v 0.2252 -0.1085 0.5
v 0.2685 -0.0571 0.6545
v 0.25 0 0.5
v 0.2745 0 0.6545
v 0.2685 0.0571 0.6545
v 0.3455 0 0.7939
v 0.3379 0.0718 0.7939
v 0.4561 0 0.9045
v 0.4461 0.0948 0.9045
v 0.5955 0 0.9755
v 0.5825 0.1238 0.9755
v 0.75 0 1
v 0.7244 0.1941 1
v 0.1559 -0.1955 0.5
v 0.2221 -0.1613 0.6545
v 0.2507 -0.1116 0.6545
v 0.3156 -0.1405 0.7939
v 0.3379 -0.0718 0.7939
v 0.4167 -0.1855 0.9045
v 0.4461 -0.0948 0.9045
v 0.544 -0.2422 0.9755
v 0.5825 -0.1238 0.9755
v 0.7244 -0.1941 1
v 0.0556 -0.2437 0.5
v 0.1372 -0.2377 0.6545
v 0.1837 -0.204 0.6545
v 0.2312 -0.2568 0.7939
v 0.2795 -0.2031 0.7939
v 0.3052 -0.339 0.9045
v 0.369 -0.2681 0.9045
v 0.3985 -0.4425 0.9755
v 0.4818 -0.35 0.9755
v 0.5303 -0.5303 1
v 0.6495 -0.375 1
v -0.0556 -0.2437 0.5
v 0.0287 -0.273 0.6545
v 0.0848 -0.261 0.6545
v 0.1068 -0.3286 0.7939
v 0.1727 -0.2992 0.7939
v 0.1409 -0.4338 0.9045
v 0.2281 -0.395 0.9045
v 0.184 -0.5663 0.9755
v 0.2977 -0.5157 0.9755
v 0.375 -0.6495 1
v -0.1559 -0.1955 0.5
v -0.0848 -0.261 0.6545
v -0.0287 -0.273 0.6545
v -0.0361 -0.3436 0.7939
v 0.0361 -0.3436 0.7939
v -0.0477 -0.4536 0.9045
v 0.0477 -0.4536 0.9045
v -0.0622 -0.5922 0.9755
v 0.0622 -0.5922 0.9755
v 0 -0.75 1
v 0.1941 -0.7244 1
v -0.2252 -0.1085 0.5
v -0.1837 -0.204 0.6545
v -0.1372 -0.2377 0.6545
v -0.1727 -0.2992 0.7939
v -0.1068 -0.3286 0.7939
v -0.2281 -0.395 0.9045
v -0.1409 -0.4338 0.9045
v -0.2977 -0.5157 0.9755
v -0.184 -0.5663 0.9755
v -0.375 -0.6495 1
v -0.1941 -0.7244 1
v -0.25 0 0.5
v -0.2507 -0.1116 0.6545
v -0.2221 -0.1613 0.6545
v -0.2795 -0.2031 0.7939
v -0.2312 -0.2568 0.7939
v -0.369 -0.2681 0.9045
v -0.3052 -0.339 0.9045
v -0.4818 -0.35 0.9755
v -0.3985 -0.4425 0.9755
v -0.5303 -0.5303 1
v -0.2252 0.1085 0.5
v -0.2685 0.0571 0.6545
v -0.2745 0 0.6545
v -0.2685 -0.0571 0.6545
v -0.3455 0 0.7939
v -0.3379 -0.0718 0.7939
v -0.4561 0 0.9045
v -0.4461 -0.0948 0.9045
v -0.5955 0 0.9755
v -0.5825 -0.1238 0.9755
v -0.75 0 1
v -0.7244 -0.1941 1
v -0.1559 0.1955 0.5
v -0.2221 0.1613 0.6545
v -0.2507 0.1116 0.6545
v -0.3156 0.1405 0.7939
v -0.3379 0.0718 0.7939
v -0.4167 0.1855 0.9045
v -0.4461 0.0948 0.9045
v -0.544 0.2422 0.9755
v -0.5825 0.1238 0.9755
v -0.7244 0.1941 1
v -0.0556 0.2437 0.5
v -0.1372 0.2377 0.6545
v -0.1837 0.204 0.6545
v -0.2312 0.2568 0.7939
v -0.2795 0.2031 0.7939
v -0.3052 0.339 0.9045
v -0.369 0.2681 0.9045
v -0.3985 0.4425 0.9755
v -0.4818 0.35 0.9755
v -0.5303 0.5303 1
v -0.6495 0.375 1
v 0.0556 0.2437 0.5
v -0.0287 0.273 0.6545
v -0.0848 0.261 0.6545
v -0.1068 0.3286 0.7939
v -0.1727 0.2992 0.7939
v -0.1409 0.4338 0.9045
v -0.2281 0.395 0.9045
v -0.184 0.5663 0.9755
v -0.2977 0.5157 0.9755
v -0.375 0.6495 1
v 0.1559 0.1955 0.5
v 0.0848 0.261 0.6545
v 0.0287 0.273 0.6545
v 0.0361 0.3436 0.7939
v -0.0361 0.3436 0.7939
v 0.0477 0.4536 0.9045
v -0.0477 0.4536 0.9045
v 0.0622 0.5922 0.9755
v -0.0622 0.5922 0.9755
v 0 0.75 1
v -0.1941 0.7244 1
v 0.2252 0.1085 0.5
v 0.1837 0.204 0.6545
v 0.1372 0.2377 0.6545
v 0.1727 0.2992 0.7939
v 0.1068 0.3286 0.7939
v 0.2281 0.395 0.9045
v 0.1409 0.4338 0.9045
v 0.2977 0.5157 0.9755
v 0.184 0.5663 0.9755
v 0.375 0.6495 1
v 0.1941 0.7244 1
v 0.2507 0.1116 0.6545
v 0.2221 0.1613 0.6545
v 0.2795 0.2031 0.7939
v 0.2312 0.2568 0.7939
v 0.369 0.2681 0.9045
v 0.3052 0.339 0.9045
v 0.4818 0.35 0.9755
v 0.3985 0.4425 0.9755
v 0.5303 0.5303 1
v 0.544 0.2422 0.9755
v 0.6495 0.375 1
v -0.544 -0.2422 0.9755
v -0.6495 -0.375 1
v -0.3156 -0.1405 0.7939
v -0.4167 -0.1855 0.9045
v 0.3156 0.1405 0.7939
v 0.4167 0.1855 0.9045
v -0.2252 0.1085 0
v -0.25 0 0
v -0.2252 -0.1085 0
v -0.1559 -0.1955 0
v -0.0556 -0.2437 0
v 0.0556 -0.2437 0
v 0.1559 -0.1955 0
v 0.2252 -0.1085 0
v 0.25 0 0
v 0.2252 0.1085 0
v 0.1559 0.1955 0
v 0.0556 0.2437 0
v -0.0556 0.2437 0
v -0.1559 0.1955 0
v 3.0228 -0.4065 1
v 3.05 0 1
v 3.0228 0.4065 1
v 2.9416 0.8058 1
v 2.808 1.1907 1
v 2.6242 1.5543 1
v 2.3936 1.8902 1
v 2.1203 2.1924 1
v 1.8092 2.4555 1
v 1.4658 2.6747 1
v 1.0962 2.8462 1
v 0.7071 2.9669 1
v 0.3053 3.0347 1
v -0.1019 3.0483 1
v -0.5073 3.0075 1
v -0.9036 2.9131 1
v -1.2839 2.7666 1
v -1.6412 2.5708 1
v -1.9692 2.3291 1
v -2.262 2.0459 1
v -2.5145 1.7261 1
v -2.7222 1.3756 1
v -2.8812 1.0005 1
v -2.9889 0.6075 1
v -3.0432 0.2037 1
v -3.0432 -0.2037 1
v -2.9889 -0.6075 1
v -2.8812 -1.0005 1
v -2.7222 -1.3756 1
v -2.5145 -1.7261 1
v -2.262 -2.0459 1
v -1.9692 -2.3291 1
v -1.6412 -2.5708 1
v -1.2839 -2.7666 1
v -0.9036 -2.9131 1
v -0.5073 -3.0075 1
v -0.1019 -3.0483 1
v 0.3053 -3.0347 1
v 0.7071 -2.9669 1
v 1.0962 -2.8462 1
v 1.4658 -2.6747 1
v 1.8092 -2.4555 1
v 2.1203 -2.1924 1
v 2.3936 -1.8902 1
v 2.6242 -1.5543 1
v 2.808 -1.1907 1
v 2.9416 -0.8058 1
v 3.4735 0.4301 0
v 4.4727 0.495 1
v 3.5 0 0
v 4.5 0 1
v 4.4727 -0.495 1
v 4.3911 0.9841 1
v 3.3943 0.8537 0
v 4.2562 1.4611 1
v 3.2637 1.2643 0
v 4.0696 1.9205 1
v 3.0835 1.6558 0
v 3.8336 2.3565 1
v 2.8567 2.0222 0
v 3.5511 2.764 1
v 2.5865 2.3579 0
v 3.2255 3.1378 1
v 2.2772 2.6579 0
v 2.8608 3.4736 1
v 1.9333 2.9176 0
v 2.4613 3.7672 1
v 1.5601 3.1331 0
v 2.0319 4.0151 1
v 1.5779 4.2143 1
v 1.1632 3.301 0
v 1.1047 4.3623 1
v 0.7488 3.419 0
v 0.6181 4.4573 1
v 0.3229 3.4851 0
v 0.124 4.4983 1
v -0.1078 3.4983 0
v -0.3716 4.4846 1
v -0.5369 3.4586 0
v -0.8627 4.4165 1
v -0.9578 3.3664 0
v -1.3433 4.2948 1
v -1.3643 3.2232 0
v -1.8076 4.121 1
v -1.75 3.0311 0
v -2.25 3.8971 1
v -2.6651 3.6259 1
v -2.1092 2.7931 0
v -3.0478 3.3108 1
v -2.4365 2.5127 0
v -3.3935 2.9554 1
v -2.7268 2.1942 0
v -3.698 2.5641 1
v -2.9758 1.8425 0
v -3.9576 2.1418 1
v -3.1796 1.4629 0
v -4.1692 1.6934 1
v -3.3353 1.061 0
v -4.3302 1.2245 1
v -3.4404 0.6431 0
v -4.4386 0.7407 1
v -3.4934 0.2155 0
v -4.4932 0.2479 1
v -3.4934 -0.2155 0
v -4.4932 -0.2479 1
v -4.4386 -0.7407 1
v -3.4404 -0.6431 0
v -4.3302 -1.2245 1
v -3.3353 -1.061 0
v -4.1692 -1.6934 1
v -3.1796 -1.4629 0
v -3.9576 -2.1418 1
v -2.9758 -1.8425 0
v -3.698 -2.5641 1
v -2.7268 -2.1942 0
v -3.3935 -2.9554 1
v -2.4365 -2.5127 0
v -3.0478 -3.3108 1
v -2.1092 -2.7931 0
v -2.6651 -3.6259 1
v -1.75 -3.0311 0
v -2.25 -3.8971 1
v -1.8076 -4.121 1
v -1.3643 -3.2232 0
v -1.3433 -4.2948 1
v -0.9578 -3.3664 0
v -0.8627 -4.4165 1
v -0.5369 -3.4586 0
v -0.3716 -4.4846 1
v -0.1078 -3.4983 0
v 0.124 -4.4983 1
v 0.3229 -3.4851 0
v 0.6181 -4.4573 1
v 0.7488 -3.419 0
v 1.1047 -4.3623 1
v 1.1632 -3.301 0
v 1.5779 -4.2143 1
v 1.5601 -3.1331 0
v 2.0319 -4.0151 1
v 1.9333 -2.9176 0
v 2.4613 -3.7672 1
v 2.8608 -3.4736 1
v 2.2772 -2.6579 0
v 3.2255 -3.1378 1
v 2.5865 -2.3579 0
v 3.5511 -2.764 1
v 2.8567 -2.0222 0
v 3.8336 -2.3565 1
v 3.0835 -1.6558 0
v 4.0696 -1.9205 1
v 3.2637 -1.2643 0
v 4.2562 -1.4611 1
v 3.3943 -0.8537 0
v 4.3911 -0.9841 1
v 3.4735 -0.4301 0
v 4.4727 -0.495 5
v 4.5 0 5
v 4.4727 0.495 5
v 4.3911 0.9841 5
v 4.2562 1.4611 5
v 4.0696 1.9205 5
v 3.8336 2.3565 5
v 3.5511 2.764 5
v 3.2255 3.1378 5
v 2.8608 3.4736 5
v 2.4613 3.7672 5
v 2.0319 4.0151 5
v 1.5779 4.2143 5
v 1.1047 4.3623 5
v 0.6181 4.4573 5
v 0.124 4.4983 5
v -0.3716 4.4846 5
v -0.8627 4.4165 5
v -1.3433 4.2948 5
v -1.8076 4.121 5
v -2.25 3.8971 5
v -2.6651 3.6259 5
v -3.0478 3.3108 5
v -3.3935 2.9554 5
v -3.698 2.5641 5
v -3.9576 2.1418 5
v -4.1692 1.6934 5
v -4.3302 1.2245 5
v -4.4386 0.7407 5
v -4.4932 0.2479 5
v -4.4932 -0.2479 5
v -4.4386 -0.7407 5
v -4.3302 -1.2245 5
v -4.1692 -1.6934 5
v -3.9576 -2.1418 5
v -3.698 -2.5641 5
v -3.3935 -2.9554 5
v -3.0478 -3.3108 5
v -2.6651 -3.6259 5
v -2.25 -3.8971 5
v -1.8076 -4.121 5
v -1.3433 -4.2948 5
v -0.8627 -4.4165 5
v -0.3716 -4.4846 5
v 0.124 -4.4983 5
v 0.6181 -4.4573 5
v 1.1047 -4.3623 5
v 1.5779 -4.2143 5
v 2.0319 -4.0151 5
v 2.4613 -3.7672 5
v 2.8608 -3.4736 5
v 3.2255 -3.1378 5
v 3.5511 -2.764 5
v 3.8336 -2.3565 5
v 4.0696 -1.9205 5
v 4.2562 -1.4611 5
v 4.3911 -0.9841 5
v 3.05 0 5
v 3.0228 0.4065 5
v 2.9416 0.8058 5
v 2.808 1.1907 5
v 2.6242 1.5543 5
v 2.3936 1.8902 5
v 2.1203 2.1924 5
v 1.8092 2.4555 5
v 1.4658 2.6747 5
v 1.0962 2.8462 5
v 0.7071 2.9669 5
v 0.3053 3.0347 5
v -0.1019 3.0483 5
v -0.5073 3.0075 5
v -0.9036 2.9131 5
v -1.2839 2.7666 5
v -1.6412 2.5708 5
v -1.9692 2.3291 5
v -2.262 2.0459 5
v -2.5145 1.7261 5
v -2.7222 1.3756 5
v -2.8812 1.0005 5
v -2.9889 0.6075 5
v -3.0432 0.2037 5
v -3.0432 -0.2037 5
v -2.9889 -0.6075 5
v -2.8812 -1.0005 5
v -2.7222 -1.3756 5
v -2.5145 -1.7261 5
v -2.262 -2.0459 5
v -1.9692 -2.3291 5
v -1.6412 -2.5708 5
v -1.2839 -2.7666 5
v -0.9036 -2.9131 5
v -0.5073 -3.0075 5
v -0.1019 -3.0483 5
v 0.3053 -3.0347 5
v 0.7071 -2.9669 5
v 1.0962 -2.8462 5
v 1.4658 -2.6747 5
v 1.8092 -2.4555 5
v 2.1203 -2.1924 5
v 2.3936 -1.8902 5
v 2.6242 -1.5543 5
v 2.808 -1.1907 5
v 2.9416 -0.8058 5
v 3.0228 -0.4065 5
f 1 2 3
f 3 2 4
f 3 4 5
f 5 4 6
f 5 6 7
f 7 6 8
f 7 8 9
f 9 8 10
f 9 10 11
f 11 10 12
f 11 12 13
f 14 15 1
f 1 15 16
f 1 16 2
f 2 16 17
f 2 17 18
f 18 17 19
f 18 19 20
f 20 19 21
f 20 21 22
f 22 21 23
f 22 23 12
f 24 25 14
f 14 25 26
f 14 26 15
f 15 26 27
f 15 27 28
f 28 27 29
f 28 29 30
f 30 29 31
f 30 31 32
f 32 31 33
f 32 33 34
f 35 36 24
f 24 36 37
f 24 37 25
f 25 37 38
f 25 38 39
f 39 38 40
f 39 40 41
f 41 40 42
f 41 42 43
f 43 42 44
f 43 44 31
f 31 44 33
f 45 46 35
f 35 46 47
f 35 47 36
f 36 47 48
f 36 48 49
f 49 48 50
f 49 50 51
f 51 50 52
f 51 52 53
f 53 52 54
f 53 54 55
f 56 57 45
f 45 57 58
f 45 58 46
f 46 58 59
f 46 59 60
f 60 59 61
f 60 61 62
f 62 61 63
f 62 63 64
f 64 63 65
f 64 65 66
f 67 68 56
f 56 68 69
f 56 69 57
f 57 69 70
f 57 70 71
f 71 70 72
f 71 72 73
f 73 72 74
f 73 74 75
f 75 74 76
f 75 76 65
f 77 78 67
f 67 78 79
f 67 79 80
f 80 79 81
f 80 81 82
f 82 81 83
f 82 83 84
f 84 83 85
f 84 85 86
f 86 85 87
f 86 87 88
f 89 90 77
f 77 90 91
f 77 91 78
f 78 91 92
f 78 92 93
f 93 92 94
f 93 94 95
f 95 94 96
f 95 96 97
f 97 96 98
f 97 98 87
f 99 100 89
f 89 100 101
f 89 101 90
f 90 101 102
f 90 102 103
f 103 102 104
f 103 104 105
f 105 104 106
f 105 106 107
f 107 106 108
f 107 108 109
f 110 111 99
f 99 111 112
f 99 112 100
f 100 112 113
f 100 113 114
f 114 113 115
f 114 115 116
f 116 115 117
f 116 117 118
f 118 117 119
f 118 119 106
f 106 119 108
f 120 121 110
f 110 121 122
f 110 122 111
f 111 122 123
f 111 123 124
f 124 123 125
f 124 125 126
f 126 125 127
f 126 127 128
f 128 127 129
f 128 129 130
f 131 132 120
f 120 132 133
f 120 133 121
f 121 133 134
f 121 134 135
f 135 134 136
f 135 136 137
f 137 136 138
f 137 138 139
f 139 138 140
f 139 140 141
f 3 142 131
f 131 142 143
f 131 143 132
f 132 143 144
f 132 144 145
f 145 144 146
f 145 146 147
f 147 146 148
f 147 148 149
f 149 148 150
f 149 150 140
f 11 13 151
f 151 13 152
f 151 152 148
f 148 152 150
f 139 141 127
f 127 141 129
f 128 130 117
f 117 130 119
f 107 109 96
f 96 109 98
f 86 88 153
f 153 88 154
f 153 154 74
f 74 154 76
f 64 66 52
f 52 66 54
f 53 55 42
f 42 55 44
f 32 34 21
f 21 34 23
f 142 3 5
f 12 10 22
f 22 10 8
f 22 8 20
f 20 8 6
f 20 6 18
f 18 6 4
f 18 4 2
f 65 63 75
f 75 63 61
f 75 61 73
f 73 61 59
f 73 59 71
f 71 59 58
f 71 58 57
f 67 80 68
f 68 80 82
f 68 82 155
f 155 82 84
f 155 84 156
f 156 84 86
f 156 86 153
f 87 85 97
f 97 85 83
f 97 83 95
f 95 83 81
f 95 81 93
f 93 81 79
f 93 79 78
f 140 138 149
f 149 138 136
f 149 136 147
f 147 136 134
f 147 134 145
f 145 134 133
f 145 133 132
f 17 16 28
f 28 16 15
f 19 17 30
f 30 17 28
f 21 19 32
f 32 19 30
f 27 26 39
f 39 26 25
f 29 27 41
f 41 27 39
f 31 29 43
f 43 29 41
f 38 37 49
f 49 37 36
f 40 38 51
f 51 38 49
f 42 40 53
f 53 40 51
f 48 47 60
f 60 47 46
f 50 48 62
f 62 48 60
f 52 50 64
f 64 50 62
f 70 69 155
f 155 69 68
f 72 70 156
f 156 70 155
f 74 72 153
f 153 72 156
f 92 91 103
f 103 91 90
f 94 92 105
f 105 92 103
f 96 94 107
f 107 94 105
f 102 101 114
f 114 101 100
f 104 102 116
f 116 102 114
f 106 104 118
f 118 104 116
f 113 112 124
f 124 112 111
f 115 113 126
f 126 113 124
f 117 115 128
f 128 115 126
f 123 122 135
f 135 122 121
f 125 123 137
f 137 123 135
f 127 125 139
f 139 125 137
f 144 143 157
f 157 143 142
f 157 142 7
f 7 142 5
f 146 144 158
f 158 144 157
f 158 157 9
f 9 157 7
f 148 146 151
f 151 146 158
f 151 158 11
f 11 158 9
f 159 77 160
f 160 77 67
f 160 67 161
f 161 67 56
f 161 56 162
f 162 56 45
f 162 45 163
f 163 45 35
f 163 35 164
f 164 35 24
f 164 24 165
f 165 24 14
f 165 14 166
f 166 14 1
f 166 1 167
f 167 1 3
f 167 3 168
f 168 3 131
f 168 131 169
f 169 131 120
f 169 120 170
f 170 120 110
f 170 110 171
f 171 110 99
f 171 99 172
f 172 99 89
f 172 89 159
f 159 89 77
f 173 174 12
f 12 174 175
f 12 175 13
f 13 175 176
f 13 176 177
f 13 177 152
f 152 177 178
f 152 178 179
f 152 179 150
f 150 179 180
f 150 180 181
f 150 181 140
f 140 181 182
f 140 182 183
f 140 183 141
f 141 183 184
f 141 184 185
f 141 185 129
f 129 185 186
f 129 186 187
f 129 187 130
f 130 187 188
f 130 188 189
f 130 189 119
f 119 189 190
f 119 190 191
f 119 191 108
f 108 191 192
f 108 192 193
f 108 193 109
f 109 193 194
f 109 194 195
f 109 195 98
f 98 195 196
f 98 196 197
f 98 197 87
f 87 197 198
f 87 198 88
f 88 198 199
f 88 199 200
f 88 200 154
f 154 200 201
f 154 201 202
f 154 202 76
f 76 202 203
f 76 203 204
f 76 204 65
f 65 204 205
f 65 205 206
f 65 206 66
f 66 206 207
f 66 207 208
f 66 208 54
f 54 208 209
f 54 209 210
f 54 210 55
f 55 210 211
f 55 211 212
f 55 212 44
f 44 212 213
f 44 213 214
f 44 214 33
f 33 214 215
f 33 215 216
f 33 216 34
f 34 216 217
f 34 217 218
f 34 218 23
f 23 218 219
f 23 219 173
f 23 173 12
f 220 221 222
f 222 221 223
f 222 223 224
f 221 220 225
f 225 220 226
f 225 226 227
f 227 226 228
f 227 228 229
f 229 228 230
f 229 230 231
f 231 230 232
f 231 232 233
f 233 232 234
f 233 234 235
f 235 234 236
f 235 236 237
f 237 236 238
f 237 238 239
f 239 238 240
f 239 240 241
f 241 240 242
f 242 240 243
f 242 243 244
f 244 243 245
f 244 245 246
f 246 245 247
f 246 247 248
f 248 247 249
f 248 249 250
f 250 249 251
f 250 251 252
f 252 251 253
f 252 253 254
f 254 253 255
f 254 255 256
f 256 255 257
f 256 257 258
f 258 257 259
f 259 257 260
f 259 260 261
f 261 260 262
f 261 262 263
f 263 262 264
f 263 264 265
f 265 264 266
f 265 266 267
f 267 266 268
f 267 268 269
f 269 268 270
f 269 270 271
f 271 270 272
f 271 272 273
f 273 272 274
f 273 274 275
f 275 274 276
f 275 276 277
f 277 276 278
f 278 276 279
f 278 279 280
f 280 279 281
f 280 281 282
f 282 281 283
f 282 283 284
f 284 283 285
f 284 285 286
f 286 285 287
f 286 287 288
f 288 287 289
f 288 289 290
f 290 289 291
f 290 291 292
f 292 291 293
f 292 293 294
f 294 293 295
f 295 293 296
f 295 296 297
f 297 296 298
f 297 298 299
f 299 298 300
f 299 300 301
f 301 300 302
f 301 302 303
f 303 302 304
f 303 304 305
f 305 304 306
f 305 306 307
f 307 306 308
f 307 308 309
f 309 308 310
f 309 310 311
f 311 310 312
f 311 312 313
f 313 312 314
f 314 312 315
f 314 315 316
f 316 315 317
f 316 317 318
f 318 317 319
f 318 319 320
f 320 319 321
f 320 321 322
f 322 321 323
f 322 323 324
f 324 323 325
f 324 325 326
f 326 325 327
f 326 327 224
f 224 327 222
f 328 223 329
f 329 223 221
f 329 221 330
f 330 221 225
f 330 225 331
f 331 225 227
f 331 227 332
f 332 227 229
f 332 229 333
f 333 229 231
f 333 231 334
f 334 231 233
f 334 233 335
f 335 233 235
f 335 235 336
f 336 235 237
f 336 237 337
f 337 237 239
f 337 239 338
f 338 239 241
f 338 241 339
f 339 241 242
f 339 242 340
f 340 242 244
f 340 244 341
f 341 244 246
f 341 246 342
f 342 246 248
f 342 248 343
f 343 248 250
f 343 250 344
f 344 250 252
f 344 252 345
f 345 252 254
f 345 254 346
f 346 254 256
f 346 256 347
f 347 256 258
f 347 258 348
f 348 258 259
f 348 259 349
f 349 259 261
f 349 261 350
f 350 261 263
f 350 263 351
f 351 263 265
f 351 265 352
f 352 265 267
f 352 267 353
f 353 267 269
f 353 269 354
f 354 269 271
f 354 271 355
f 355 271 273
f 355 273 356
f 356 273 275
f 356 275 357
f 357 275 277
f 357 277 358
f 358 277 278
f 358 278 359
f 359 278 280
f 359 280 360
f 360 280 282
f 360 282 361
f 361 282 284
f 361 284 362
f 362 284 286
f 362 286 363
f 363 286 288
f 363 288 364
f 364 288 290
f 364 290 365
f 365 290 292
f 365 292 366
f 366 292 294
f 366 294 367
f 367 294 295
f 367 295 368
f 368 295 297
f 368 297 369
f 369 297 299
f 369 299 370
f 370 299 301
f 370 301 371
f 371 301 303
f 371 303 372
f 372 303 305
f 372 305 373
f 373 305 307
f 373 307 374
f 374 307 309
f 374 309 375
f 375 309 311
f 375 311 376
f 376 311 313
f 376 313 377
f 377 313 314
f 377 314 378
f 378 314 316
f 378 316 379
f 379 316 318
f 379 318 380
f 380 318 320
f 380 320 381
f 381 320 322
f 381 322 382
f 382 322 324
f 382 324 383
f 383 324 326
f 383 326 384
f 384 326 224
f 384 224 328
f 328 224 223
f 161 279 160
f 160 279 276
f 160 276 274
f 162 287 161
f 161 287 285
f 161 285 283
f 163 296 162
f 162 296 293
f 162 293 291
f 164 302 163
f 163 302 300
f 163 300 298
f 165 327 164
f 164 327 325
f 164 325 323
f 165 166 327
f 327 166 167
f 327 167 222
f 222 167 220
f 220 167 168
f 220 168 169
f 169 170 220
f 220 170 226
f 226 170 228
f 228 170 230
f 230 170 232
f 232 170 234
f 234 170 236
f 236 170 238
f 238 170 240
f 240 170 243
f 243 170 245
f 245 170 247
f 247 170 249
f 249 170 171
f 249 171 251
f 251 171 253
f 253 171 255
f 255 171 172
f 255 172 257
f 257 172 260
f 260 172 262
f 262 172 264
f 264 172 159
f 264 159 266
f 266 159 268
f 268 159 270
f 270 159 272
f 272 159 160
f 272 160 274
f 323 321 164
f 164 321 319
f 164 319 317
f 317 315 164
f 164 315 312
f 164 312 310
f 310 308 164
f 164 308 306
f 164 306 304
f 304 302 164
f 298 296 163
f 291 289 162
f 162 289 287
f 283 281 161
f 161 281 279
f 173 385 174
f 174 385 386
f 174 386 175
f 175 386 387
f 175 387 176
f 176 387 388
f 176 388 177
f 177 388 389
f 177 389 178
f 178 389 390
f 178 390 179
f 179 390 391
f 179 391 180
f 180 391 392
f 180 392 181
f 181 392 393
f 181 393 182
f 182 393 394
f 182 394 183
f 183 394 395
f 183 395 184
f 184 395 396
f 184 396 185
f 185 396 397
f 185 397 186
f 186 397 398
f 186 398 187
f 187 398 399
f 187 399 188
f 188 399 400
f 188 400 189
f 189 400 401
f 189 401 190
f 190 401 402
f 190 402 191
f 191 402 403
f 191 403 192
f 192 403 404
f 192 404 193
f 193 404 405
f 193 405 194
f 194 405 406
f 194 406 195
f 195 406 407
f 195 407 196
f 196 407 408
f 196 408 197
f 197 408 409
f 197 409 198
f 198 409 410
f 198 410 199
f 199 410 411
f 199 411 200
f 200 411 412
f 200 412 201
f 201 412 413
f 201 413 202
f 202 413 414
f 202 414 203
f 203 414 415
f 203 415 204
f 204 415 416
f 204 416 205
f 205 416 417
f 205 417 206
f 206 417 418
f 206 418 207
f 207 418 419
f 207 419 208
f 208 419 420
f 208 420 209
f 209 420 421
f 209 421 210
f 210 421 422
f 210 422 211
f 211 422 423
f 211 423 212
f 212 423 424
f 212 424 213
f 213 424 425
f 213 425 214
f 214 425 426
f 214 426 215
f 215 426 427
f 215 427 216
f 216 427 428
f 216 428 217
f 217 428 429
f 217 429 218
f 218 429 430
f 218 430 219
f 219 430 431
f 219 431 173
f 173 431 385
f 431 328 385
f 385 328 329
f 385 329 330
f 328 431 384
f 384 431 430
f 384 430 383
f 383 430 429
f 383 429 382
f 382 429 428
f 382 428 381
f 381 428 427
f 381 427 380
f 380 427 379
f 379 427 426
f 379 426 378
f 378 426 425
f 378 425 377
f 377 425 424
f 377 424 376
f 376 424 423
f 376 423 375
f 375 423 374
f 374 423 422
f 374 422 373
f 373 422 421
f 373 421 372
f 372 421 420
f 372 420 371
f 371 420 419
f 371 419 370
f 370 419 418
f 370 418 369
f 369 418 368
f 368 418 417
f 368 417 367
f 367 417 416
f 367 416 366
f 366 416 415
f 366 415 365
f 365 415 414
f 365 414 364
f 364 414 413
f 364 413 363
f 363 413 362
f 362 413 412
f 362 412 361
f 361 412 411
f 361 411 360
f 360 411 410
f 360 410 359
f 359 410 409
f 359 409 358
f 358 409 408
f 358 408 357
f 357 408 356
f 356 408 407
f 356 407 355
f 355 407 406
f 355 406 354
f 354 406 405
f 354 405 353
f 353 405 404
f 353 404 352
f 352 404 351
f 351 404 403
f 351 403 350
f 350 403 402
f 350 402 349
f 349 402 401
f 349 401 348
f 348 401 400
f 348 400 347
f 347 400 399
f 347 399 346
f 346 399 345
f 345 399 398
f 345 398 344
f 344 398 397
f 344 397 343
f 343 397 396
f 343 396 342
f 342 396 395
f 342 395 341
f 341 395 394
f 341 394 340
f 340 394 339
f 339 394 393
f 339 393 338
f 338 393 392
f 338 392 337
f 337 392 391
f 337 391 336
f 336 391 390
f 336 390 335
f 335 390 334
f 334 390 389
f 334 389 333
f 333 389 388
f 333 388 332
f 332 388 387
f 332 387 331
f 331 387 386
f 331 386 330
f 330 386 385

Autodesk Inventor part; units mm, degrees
ref_plane "YZ Plane" through (0, 0, 0) normal (1, 0, 0) x (0, 1, 0)
ref_plane "XZ Plane" through (0, 0, 0) normal (0, 1, 0) x (-1, 0, 0)
ref_plane "XY Plane" through (0, 0, 0) normal (0, 0, 1) x (1, 0, 0)
sketch "Sketch1" plane through (0, 0, 0) normal (0, 0, 1) x (1, 0, 0)
  circle A0 centre (0, 0) radius 4.5
  dimension "d0" = 9
extrude "Extrusion1" add sketch "Sketch1" along normal blind 5
sketch "Sketch2" plane through (0, 0, 5) normal (0, 0, 1) x (1, 0, 0)
  circle A0 centre (0, 0) radius 3.05
  dimension "d3" = 6.1
extrude "Extrusion2" cut sketch "Sketch2" against normal blind 4
chamfer "Chamfer1" distance 1 angle 45 1 edges at (-4.5, 0, 0)
sketch "Sketch3" plane through (0, 0, 1) normal (0, 0, 1) x (1, 0, 0)
  circle A0 centre (0, 0) radius 0.25
  dimension "d9" = 0.5
extrude "Extrusion3" cut sketch "Sketch3" against normal through all
fillet "Fillet1" radius 0.5 1 edges at (-0.25, 0, 1)
properties part number "laser_diode_lid"
